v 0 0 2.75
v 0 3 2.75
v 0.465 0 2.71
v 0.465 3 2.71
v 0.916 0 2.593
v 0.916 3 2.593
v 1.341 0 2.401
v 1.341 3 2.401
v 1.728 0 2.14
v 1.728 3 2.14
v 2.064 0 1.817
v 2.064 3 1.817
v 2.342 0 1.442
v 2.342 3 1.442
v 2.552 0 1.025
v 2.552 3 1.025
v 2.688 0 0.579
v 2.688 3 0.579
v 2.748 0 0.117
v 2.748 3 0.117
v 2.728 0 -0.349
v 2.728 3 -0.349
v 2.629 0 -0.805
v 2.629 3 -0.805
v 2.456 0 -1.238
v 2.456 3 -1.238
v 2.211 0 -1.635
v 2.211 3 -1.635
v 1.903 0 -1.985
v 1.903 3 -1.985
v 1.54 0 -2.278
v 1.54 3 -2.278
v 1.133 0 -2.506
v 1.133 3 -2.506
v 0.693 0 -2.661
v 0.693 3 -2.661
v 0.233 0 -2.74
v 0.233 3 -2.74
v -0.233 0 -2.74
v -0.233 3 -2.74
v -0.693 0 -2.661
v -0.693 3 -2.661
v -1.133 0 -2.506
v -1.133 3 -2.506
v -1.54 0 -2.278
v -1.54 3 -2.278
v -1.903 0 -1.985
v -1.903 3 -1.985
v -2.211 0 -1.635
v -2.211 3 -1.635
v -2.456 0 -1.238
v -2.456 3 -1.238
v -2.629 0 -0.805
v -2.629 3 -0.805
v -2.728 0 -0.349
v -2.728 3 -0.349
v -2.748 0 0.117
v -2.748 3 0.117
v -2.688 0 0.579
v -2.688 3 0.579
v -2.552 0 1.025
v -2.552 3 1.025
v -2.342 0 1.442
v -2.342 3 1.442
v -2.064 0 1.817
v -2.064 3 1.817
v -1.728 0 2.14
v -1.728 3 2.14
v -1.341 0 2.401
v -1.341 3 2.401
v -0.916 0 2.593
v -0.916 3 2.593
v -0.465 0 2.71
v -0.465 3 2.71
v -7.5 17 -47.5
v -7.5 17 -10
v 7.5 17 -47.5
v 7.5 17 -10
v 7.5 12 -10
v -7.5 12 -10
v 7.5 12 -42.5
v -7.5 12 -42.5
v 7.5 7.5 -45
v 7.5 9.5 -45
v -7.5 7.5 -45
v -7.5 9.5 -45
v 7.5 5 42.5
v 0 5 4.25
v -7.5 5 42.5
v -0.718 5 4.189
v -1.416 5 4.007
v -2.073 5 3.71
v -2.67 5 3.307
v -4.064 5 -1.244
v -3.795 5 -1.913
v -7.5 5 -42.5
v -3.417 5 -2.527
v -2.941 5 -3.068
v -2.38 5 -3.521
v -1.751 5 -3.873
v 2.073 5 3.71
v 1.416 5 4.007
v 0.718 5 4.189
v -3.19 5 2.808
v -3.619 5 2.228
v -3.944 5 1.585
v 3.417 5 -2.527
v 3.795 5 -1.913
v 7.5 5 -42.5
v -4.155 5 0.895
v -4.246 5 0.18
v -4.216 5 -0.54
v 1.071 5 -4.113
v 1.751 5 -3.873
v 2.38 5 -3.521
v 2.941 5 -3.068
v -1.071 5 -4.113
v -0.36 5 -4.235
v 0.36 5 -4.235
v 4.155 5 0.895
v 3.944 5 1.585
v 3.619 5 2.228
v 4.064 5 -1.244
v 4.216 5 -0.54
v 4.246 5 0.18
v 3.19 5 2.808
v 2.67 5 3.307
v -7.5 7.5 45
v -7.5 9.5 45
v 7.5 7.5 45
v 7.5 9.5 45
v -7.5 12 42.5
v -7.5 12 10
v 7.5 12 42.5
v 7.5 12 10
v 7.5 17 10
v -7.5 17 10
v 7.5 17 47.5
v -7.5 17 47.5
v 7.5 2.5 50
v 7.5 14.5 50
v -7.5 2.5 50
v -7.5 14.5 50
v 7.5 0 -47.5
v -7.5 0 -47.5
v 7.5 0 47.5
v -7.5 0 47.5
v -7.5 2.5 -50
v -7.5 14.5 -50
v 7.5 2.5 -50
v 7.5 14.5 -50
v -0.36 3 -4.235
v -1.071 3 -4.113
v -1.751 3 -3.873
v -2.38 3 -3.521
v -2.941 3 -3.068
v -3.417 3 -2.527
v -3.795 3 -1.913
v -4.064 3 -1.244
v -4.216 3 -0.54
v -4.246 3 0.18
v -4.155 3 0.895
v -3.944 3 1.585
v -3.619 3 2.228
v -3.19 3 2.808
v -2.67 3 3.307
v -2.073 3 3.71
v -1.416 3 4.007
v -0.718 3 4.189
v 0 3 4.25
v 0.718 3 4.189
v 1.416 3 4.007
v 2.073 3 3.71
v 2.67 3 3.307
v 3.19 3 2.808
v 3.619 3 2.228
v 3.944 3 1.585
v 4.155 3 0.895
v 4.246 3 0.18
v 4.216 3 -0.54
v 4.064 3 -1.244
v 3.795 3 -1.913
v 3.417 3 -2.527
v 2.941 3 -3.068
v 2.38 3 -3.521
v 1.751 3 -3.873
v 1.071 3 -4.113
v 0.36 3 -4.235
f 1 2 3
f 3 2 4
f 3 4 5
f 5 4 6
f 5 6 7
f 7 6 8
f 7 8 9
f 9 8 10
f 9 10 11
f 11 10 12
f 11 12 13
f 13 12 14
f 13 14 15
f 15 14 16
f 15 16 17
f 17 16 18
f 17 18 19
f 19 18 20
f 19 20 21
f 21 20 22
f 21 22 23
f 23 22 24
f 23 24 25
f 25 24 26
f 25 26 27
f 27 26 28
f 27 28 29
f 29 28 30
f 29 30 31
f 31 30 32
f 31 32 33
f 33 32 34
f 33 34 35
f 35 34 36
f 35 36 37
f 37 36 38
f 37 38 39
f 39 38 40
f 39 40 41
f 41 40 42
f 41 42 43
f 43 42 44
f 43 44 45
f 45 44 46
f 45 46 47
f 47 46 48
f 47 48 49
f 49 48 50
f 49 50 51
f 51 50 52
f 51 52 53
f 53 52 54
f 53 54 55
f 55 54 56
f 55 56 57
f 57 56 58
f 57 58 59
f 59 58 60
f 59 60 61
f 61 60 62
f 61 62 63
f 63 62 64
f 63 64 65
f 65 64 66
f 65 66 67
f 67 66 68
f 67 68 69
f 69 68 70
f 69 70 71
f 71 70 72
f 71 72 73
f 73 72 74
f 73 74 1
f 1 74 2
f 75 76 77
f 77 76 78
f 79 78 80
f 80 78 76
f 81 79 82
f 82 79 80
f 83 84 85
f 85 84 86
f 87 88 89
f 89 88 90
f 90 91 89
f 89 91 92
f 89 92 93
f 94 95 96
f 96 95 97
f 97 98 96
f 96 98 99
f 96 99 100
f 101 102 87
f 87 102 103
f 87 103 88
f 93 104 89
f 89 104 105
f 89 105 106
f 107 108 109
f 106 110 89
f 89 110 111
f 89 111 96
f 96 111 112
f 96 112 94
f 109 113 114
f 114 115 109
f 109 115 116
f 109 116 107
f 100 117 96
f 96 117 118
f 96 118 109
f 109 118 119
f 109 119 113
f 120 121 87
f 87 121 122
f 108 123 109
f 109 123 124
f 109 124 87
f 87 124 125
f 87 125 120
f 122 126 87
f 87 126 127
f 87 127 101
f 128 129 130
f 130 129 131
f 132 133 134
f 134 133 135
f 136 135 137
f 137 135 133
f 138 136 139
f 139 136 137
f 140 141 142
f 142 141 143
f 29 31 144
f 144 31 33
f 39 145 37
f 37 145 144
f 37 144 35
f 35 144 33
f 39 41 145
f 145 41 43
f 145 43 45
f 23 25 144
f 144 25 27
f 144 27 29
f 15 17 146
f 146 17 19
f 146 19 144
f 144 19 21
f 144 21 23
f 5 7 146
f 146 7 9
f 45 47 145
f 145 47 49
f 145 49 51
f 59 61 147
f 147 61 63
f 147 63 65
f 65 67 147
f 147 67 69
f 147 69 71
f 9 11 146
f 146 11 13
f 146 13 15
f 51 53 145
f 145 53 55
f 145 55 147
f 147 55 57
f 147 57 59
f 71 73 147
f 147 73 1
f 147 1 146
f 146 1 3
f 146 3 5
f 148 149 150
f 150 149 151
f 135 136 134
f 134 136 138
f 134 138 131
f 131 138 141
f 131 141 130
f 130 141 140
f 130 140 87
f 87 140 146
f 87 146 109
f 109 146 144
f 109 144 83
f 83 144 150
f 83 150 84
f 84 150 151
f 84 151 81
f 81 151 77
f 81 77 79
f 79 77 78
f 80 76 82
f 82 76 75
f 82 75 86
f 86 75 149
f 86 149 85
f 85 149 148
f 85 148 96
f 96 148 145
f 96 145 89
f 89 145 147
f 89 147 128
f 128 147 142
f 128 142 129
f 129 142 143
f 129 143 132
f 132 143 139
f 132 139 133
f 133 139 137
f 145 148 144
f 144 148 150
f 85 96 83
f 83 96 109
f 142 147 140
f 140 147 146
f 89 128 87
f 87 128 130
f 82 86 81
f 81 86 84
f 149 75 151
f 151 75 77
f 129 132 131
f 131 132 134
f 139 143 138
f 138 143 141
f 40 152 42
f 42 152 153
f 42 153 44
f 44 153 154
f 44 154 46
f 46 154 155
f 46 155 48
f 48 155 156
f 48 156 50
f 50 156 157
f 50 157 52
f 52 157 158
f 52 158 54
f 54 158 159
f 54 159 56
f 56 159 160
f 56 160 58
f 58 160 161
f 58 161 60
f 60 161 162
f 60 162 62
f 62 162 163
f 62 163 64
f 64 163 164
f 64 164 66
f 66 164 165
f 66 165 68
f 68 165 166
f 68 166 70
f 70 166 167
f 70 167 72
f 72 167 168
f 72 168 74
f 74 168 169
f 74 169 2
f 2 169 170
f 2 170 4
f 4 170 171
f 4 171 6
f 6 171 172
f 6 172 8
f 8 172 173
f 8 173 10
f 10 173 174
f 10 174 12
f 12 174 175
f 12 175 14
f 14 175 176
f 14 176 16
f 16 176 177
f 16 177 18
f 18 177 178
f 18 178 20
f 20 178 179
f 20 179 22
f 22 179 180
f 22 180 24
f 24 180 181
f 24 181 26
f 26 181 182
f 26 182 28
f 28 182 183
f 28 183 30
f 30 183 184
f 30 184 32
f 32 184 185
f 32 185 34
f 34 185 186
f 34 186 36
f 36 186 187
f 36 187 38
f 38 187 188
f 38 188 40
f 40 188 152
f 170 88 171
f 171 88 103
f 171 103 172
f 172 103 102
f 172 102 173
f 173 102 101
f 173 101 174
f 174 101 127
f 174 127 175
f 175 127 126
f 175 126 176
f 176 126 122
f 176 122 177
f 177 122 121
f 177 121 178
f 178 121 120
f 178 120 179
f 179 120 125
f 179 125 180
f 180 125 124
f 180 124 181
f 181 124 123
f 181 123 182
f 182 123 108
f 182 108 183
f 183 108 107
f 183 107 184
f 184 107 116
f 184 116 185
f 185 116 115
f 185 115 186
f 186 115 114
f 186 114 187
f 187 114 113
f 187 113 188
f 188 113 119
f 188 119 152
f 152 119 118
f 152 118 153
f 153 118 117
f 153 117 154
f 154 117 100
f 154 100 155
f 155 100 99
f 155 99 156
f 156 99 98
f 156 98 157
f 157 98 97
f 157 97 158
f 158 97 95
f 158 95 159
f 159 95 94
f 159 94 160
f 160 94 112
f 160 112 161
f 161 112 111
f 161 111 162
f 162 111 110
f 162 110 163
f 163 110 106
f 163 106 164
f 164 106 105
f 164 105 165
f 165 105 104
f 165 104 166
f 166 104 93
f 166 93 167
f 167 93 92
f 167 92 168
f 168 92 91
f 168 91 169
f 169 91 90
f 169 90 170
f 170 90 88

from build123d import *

# Parameters (mm, degrees)
BOSS_EXTRUDE1_DEPTH = 7.5
CHAMFER1_SIZE       = 2.5
SKETCH2_R           = 2.75
CUT_EXTRUDE1_DEPTH  = 52.963929798
SKETCH3_R           = 4.25
CUT_EXTRUDE2_DEPTH  = 2


with BuildPart() as part:
    # Sketch1 → Boss-Extrude1 (new, symmetric)
    with BuildSketch(Plane(origin=(0, 0, 0), x_dir=(0, 0, -1), z_dir=(1, 0, 0))):
        Polygon((10, 17), (10, 12), (45, 12), (45, 5), (-45, 5), (-45, 12), (-10, 12), (-10, 17), (-50, 17), (-50, 0), (50, 0), (50, 17), align=None)
    extrude(amount=BOSS_EXTRUDE1_DEPTH, both=True)

    # Chamfer1
    chamfer1_edges = [part.edges().sort_by_distance(p)[0] for p in [
        (0, 17, -50),
        (0, 0, -50),
        (0, 0, 50),
        (0, 17, 50),
        (0, 12, 45),
        (0, 5, 45),
        (0, 5, -45),
        (0, 12, -45),
    ]]
    chamfer(chamfer1_edges, length=CHAMFER1_SIZE)

    # Sketch2 → Cut-Extrude1 (cut, through all)
    with BuildSketch(Plane(origin=(0, 5, 0), x_dir=(1, 0, 0), z_dir=(0, 1, 0))):
        with Locations(Location((0, 0, 0), (0, 0, 270))):
            Circle(SKETCH2_R)
    extrude(amount=-CUT_EXTRUDE1_DEPTH, mode=Mode.SUBTRACT)

    # Sketch3 → Cut-Extrude2 (cut)
    with BuildSketch(Plane(origin=(0, 5, 0), x_dir=(1, 0, 0), z_dir=(0, 1, 0))):
        with Locations(Location((0, 0, 0), (0, 0, 270))):
            Circle(SKETCH3_R)
    extrude(amount=-CUT_EXTRUDE2_DEPTH, mode=Mode.SUBTRACT)


solid = part.part
